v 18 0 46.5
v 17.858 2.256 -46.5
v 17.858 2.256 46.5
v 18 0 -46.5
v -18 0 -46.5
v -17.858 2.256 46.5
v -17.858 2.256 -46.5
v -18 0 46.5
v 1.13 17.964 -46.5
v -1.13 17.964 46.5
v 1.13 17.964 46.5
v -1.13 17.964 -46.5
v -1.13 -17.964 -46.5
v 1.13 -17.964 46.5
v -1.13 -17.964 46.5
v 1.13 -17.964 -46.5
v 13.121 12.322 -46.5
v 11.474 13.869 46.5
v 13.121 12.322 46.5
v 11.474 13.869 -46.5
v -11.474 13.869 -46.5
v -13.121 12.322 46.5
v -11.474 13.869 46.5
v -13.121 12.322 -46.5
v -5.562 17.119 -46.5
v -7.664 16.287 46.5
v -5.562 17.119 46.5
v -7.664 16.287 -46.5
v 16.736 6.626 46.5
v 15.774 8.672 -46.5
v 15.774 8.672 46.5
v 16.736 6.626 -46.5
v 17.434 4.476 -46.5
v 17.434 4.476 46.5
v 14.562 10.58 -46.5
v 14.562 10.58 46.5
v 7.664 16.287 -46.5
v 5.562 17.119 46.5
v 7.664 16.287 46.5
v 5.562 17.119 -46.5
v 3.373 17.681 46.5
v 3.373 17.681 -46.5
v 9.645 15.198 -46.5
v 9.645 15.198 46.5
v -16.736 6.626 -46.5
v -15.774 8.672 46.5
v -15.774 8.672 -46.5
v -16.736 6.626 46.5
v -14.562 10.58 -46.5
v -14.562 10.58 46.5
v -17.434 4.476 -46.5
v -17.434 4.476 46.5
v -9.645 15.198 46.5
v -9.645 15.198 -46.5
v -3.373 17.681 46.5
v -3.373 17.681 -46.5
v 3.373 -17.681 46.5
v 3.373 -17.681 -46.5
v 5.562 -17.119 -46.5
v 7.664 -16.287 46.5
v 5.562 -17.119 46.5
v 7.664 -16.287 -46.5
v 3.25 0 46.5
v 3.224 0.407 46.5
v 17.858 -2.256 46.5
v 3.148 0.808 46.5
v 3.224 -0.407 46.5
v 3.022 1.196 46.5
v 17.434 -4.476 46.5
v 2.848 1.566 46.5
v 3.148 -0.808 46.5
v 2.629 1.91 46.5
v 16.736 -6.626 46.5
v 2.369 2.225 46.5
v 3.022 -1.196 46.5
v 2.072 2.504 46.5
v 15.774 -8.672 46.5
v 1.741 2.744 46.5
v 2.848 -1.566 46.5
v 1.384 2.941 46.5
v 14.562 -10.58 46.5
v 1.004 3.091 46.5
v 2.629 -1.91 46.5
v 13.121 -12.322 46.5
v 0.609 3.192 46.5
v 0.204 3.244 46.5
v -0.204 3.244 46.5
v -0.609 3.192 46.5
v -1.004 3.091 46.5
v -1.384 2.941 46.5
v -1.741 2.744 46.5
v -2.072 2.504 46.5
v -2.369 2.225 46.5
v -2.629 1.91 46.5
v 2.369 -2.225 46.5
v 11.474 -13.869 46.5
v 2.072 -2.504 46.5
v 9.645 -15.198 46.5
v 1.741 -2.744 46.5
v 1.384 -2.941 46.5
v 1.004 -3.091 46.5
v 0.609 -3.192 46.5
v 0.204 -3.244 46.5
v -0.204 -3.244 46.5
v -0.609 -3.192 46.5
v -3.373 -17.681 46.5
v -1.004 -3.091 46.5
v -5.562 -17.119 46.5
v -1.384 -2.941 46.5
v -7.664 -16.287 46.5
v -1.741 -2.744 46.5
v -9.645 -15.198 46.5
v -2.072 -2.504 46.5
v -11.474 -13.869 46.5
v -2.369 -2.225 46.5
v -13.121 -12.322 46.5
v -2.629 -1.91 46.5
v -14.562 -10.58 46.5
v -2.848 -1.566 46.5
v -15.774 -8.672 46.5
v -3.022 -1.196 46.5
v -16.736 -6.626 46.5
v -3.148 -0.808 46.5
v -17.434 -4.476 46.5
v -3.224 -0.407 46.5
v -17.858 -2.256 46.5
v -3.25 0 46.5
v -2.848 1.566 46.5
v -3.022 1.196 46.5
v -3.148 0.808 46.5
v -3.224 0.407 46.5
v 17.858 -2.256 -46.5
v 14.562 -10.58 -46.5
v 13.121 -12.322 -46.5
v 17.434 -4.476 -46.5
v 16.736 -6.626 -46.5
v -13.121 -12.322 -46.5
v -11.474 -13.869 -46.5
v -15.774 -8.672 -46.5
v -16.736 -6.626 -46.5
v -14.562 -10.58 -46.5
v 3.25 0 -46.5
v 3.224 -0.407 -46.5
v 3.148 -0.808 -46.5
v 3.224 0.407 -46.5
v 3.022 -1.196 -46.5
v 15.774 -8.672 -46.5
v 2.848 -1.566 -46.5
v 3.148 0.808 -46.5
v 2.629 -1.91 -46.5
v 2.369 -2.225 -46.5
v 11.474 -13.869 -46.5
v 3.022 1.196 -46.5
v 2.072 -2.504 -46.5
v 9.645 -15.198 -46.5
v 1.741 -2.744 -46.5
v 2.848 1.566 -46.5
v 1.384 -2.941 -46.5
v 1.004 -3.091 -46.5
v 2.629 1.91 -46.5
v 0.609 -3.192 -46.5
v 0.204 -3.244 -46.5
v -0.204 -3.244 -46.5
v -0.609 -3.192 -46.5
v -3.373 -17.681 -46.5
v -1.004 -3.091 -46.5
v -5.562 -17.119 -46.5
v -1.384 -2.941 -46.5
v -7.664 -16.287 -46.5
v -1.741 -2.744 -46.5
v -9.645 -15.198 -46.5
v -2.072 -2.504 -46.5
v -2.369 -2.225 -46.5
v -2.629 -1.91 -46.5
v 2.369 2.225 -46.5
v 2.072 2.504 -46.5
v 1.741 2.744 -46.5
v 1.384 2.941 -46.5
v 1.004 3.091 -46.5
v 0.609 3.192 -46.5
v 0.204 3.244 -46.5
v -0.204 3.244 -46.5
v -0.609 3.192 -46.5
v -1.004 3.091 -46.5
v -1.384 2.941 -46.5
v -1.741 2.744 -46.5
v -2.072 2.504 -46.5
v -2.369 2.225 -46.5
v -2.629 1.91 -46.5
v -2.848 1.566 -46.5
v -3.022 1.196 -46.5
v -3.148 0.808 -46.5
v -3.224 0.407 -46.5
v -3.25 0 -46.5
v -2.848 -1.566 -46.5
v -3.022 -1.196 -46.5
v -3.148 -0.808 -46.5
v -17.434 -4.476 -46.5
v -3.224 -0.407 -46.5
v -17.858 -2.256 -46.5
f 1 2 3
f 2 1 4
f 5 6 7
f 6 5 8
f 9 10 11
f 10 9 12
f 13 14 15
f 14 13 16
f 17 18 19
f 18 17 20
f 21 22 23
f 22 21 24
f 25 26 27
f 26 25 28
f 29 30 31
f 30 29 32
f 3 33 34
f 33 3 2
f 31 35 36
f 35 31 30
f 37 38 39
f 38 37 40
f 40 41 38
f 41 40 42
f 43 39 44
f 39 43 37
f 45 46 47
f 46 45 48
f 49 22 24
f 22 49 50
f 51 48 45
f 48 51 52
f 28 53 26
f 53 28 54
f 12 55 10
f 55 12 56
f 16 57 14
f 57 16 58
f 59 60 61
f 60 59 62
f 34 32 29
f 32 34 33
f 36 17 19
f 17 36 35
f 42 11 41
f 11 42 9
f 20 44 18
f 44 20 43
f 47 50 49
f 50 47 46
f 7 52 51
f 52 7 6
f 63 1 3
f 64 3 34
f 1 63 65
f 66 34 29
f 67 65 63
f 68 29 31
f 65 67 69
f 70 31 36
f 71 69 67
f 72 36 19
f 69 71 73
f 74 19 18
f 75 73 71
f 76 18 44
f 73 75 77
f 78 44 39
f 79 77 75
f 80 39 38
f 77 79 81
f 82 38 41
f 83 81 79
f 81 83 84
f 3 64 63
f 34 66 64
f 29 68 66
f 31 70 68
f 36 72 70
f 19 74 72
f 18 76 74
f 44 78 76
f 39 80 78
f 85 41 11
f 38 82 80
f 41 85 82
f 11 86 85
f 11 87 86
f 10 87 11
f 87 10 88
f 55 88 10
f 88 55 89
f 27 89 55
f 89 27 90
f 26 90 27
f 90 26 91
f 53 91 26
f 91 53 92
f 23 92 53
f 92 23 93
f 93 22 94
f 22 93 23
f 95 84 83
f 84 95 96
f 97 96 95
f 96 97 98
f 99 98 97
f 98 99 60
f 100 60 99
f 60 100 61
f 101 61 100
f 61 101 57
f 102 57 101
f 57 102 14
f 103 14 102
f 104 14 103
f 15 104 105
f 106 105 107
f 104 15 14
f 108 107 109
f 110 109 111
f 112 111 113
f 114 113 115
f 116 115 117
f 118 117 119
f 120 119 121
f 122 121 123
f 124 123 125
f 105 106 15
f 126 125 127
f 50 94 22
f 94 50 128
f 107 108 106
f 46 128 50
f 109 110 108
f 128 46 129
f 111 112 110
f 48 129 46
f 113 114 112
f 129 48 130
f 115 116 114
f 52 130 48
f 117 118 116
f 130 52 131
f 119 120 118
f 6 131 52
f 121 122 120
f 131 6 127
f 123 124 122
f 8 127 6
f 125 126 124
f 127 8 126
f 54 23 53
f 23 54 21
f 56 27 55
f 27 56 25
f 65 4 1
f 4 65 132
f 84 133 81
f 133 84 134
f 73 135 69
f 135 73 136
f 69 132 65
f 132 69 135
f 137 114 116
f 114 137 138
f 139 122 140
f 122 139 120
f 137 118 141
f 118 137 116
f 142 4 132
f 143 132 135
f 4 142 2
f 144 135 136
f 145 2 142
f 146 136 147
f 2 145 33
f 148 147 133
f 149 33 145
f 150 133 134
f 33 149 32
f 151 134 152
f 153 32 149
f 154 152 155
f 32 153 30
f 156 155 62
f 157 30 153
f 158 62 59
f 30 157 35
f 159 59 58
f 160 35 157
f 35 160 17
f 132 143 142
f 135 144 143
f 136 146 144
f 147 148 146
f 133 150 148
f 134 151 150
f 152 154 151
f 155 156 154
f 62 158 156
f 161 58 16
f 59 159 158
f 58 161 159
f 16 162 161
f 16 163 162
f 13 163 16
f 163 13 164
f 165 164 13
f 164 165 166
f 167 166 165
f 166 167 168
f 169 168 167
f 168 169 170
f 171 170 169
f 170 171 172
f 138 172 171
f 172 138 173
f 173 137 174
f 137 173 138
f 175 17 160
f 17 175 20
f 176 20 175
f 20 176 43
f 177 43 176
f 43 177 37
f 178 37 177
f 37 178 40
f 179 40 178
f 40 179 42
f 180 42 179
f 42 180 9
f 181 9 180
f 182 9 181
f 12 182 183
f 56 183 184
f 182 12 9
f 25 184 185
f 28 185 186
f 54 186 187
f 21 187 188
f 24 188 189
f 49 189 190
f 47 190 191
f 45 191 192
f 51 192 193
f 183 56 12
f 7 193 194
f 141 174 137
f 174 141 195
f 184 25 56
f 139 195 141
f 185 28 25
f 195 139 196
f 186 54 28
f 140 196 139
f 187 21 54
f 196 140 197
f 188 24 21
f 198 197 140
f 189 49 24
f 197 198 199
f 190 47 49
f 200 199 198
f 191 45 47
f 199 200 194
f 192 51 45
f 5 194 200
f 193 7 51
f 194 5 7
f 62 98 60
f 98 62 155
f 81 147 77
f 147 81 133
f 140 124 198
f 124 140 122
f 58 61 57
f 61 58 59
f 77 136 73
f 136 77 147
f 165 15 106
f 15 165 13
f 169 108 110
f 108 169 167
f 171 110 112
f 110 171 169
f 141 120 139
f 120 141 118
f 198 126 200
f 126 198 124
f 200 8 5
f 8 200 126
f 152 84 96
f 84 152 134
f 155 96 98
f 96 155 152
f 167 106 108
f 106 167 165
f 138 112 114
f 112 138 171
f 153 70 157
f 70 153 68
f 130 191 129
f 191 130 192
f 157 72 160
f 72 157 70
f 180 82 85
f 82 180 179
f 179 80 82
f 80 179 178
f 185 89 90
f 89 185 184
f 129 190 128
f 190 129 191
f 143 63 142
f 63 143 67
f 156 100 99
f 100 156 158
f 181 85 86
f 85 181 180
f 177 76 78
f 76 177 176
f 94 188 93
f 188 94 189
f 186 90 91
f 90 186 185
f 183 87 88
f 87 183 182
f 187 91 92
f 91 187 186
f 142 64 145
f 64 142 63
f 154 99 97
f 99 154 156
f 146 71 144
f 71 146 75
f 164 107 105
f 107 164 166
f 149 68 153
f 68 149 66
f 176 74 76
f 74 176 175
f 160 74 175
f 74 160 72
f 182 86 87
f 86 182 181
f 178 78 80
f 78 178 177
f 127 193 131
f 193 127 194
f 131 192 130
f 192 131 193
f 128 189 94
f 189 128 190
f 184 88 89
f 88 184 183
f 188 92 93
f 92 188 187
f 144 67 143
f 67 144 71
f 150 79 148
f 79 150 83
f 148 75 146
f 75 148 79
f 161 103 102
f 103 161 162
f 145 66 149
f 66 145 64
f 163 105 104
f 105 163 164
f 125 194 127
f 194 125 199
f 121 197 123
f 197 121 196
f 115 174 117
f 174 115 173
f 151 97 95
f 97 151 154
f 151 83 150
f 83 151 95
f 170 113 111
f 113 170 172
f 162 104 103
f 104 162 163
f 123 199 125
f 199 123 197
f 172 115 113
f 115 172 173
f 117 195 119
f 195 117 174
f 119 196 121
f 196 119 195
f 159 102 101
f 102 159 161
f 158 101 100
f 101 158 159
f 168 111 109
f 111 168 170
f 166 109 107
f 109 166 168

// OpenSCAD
$fn = 50;


difference() {
	union() {
		translate(v = [0, 0, -46.5000000000]) {
			cylinder(h = 93, r = 18.0000000000);
		}
	}
	union() {
		translate(v = [0, 0, -100.0000000000]) {
			cylinder(h = 200, r = 3.2500000000);
		}
	}
}
